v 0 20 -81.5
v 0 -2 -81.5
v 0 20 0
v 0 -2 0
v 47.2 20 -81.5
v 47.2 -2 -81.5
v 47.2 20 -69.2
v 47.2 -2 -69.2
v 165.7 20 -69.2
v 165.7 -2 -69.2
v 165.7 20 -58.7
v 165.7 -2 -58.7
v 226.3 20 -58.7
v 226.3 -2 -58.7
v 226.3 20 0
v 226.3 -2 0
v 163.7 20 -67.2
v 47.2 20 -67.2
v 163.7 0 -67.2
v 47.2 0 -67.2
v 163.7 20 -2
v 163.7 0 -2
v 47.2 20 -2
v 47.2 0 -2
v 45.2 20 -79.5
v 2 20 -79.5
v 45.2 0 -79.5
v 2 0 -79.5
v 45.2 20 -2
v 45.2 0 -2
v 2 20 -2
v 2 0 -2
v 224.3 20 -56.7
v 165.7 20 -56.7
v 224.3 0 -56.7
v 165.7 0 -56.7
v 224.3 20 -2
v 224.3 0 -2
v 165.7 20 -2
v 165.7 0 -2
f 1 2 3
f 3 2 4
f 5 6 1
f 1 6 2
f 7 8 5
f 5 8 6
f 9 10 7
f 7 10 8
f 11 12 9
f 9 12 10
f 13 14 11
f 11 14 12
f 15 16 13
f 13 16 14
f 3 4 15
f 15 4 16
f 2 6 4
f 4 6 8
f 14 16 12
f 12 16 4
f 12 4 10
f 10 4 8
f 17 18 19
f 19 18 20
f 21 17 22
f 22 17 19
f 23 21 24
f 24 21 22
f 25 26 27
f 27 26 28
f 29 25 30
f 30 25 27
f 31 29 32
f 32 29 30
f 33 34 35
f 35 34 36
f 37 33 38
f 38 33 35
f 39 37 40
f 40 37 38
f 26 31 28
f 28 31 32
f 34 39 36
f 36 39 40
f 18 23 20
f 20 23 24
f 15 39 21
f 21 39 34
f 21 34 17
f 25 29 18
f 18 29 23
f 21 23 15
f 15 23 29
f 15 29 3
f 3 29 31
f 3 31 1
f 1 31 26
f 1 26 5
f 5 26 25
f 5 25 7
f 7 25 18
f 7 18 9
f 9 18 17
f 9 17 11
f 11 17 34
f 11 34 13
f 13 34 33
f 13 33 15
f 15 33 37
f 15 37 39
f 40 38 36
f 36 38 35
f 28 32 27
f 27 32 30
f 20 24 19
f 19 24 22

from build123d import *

# Parameters (mm, degrees)
BOSS_EXTRUDE1_DEPTH = 2
SKETCH1_4_W         = 58.6
SKETCH1_4_H         = 54.7
BOSS_EXTRUDE2_DEPTH = 20


with BuildPart() as part:
    # Sketch1 → Boss-Extrude1 (new body)
    with BuildSketch(Plane(origin=(0, 0, 0), x_dir=(1, 0, 0), z_dir=(0, 1, 0))):
        Polygon((0, 0), (224.3, 0), (226.3, 0), (226.3, 58.7), (165.7, 58.7), (165.7, 69.2), (47.2, 69.2), (47.2, 81.5), (0, 81.5), align=None)
    extrude(amount=-BOSS_EXTRUDE1_DEPTH)

    # Sketch1<4> → Boss-Extrude2 (add)
    with BuildSketch(Plane(origin=(0, 0, 0), x_dir=(1, 0, 0), z_dir=(0, 1, 0))):
        Polygon((0, 2), (0, 0), (2, 0), (44.2, 0), (46.2, 0), (162.7, 0), (164.7, 0), (224.3, 0), (226.3, 0), (226.3, 58.7), (165.7, 58.7), (165.7, 69.2), (47.2, 69.2), (47.2, 81.5), (2, 81.5), (0, 81.5), (0, 79.5), align=None)
        Polygon((163.7, 2), (47.2, 2), (47.2, 67.2), (163.7, 67.2), (163.7, 55.7), (163.7, 53.7), align=None, mode=Mode.SUBTRACT)
        with Locations((195, 29.35)):
            Rectangle(SKETCH1_4_W, SKETCH1_4_H, mode=Mode.SUBTRACT)
        Polygon((2, 2), (2, 79.5), (45.2, 79.5), (45.2, 68.2), (45.2, 66.2), (45.2, 2), align=None, mode=Mode.SUBTRACT)
    extrude(amount=BOSS_EXTRUDE2_DEPTH)


solid = part.part
